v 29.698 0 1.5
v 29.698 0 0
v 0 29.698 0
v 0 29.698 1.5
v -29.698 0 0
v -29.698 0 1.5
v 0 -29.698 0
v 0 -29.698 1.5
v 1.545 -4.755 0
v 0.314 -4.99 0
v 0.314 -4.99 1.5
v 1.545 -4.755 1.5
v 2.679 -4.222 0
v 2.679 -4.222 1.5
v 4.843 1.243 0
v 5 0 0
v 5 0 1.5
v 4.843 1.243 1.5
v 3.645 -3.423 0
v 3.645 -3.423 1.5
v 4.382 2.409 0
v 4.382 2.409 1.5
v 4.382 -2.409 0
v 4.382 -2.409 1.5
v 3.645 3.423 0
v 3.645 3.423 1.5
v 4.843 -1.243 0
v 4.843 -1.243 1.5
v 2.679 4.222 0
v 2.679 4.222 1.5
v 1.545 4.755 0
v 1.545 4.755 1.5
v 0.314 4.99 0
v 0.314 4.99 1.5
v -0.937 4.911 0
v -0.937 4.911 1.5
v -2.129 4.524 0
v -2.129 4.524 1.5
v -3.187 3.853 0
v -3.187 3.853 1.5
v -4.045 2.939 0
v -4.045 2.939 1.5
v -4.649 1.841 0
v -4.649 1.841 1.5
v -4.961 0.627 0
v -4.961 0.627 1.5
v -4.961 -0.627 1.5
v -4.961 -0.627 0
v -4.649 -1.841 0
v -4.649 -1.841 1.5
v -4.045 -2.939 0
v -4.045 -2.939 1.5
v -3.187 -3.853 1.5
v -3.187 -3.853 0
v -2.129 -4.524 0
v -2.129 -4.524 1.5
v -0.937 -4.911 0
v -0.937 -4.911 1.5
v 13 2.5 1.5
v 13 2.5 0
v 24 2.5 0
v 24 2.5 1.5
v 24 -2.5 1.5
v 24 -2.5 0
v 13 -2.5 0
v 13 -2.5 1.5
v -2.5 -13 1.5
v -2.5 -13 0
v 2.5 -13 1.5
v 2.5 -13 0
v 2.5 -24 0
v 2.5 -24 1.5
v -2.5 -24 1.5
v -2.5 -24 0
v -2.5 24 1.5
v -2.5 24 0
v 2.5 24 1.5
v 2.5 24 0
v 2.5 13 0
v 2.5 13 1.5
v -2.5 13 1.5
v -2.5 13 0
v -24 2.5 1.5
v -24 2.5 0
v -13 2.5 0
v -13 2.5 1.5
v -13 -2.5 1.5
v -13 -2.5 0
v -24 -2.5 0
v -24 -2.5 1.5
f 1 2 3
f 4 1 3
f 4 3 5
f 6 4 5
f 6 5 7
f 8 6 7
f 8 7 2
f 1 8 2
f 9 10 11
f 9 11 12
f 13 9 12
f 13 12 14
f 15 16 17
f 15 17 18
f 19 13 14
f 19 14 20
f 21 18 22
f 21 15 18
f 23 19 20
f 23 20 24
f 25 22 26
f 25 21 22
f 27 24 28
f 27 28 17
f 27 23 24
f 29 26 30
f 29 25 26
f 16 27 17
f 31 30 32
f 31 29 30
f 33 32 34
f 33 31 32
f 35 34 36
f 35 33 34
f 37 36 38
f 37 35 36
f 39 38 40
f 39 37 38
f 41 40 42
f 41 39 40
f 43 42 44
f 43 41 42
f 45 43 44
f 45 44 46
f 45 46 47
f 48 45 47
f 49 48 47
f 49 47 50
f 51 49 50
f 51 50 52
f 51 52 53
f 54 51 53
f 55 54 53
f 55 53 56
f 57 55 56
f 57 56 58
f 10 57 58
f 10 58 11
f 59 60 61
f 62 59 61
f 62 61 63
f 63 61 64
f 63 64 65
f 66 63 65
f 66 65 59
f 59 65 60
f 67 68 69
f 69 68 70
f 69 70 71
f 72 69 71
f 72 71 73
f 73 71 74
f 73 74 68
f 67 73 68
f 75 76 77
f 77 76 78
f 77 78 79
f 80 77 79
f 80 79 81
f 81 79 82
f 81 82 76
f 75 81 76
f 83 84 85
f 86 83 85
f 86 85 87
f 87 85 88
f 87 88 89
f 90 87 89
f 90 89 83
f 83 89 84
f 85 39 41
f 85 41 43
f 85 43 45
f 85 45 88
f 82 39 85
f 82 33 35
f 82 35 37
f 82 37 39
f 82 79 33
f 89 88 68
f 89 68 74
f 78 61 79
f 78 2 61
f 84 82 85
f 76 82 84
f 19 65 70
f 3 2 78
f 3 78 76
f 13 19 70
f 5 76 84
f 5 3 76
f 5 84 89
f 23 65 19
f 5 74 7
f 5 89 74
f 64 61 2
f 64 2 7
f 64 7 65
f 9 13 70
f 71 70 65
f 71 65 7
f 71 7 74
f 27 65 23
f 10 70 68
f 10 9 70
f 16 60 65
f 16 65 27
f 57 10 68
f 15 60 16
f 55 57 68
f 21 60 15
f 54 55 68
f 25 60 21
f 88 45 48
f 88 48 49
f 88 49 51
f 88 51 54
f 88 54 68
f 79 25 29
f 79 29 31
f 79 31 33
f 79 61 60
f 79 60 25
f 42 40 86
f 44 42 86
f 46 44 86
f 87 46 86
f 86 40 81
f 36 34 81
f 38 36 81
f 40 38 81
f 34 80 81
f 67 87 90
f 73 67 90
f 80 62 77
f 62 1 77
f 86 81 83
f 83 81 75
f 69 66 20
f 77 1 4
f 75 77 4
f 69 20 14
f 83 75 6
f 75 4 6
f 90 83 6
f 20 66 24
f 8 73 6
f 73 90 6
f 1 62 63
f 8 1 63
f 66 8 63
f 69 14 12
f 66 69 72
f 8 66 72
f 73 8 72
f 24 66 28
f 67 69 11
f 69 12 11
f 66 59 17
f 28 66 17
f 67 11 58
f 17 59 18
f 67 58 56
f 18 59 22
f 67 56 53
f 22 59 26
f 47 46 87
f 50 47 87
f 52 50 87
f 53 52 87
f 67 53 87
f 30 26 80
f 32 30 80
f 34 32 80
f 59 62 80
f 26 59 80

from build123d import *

# Parameters (mm, degrees)
SKETCH_R   = 5
SKETCH_W   = 11
SKETCH_H   = 5
SKETCH_W_2 = 5
SKETCH_H_2 = 11
PAD_DEPTH  = 1.5


with BuildPart() as part:
    # Sketch → Pad (new body)
    with BuildSketch(Plane.XY):
        Polygon((29.698485, 0), (0, 29.698485), (-29.698485, 0), (0, -29.698485), align=None)
        Circle(SKETCH_R, mode=Mode.SUBTRACT)
        with Locations((-18.5, 0)):
            Rectangle(SKETCH_W, SKETCH_H, mode=Mode.SUBTRACT)
        with Locations((0, 18.5)):
            Rectangle(SKETCH_W_2, SKETCH_H_2, mode=Mode.SUBTRACT)
        with Locations((0, -18.5)):
            Rectangle(SKETCH_W_2, SKETCH_H_2, mode=Mode.SUBTRACT)
        with Locations((18.5, 0)):
            Rectangle(SKETCH_W, SKETCH_H, mode=Mode.SUBTRACT)
    extrude(amount=PAD_DEPTH)


solid = part.part
